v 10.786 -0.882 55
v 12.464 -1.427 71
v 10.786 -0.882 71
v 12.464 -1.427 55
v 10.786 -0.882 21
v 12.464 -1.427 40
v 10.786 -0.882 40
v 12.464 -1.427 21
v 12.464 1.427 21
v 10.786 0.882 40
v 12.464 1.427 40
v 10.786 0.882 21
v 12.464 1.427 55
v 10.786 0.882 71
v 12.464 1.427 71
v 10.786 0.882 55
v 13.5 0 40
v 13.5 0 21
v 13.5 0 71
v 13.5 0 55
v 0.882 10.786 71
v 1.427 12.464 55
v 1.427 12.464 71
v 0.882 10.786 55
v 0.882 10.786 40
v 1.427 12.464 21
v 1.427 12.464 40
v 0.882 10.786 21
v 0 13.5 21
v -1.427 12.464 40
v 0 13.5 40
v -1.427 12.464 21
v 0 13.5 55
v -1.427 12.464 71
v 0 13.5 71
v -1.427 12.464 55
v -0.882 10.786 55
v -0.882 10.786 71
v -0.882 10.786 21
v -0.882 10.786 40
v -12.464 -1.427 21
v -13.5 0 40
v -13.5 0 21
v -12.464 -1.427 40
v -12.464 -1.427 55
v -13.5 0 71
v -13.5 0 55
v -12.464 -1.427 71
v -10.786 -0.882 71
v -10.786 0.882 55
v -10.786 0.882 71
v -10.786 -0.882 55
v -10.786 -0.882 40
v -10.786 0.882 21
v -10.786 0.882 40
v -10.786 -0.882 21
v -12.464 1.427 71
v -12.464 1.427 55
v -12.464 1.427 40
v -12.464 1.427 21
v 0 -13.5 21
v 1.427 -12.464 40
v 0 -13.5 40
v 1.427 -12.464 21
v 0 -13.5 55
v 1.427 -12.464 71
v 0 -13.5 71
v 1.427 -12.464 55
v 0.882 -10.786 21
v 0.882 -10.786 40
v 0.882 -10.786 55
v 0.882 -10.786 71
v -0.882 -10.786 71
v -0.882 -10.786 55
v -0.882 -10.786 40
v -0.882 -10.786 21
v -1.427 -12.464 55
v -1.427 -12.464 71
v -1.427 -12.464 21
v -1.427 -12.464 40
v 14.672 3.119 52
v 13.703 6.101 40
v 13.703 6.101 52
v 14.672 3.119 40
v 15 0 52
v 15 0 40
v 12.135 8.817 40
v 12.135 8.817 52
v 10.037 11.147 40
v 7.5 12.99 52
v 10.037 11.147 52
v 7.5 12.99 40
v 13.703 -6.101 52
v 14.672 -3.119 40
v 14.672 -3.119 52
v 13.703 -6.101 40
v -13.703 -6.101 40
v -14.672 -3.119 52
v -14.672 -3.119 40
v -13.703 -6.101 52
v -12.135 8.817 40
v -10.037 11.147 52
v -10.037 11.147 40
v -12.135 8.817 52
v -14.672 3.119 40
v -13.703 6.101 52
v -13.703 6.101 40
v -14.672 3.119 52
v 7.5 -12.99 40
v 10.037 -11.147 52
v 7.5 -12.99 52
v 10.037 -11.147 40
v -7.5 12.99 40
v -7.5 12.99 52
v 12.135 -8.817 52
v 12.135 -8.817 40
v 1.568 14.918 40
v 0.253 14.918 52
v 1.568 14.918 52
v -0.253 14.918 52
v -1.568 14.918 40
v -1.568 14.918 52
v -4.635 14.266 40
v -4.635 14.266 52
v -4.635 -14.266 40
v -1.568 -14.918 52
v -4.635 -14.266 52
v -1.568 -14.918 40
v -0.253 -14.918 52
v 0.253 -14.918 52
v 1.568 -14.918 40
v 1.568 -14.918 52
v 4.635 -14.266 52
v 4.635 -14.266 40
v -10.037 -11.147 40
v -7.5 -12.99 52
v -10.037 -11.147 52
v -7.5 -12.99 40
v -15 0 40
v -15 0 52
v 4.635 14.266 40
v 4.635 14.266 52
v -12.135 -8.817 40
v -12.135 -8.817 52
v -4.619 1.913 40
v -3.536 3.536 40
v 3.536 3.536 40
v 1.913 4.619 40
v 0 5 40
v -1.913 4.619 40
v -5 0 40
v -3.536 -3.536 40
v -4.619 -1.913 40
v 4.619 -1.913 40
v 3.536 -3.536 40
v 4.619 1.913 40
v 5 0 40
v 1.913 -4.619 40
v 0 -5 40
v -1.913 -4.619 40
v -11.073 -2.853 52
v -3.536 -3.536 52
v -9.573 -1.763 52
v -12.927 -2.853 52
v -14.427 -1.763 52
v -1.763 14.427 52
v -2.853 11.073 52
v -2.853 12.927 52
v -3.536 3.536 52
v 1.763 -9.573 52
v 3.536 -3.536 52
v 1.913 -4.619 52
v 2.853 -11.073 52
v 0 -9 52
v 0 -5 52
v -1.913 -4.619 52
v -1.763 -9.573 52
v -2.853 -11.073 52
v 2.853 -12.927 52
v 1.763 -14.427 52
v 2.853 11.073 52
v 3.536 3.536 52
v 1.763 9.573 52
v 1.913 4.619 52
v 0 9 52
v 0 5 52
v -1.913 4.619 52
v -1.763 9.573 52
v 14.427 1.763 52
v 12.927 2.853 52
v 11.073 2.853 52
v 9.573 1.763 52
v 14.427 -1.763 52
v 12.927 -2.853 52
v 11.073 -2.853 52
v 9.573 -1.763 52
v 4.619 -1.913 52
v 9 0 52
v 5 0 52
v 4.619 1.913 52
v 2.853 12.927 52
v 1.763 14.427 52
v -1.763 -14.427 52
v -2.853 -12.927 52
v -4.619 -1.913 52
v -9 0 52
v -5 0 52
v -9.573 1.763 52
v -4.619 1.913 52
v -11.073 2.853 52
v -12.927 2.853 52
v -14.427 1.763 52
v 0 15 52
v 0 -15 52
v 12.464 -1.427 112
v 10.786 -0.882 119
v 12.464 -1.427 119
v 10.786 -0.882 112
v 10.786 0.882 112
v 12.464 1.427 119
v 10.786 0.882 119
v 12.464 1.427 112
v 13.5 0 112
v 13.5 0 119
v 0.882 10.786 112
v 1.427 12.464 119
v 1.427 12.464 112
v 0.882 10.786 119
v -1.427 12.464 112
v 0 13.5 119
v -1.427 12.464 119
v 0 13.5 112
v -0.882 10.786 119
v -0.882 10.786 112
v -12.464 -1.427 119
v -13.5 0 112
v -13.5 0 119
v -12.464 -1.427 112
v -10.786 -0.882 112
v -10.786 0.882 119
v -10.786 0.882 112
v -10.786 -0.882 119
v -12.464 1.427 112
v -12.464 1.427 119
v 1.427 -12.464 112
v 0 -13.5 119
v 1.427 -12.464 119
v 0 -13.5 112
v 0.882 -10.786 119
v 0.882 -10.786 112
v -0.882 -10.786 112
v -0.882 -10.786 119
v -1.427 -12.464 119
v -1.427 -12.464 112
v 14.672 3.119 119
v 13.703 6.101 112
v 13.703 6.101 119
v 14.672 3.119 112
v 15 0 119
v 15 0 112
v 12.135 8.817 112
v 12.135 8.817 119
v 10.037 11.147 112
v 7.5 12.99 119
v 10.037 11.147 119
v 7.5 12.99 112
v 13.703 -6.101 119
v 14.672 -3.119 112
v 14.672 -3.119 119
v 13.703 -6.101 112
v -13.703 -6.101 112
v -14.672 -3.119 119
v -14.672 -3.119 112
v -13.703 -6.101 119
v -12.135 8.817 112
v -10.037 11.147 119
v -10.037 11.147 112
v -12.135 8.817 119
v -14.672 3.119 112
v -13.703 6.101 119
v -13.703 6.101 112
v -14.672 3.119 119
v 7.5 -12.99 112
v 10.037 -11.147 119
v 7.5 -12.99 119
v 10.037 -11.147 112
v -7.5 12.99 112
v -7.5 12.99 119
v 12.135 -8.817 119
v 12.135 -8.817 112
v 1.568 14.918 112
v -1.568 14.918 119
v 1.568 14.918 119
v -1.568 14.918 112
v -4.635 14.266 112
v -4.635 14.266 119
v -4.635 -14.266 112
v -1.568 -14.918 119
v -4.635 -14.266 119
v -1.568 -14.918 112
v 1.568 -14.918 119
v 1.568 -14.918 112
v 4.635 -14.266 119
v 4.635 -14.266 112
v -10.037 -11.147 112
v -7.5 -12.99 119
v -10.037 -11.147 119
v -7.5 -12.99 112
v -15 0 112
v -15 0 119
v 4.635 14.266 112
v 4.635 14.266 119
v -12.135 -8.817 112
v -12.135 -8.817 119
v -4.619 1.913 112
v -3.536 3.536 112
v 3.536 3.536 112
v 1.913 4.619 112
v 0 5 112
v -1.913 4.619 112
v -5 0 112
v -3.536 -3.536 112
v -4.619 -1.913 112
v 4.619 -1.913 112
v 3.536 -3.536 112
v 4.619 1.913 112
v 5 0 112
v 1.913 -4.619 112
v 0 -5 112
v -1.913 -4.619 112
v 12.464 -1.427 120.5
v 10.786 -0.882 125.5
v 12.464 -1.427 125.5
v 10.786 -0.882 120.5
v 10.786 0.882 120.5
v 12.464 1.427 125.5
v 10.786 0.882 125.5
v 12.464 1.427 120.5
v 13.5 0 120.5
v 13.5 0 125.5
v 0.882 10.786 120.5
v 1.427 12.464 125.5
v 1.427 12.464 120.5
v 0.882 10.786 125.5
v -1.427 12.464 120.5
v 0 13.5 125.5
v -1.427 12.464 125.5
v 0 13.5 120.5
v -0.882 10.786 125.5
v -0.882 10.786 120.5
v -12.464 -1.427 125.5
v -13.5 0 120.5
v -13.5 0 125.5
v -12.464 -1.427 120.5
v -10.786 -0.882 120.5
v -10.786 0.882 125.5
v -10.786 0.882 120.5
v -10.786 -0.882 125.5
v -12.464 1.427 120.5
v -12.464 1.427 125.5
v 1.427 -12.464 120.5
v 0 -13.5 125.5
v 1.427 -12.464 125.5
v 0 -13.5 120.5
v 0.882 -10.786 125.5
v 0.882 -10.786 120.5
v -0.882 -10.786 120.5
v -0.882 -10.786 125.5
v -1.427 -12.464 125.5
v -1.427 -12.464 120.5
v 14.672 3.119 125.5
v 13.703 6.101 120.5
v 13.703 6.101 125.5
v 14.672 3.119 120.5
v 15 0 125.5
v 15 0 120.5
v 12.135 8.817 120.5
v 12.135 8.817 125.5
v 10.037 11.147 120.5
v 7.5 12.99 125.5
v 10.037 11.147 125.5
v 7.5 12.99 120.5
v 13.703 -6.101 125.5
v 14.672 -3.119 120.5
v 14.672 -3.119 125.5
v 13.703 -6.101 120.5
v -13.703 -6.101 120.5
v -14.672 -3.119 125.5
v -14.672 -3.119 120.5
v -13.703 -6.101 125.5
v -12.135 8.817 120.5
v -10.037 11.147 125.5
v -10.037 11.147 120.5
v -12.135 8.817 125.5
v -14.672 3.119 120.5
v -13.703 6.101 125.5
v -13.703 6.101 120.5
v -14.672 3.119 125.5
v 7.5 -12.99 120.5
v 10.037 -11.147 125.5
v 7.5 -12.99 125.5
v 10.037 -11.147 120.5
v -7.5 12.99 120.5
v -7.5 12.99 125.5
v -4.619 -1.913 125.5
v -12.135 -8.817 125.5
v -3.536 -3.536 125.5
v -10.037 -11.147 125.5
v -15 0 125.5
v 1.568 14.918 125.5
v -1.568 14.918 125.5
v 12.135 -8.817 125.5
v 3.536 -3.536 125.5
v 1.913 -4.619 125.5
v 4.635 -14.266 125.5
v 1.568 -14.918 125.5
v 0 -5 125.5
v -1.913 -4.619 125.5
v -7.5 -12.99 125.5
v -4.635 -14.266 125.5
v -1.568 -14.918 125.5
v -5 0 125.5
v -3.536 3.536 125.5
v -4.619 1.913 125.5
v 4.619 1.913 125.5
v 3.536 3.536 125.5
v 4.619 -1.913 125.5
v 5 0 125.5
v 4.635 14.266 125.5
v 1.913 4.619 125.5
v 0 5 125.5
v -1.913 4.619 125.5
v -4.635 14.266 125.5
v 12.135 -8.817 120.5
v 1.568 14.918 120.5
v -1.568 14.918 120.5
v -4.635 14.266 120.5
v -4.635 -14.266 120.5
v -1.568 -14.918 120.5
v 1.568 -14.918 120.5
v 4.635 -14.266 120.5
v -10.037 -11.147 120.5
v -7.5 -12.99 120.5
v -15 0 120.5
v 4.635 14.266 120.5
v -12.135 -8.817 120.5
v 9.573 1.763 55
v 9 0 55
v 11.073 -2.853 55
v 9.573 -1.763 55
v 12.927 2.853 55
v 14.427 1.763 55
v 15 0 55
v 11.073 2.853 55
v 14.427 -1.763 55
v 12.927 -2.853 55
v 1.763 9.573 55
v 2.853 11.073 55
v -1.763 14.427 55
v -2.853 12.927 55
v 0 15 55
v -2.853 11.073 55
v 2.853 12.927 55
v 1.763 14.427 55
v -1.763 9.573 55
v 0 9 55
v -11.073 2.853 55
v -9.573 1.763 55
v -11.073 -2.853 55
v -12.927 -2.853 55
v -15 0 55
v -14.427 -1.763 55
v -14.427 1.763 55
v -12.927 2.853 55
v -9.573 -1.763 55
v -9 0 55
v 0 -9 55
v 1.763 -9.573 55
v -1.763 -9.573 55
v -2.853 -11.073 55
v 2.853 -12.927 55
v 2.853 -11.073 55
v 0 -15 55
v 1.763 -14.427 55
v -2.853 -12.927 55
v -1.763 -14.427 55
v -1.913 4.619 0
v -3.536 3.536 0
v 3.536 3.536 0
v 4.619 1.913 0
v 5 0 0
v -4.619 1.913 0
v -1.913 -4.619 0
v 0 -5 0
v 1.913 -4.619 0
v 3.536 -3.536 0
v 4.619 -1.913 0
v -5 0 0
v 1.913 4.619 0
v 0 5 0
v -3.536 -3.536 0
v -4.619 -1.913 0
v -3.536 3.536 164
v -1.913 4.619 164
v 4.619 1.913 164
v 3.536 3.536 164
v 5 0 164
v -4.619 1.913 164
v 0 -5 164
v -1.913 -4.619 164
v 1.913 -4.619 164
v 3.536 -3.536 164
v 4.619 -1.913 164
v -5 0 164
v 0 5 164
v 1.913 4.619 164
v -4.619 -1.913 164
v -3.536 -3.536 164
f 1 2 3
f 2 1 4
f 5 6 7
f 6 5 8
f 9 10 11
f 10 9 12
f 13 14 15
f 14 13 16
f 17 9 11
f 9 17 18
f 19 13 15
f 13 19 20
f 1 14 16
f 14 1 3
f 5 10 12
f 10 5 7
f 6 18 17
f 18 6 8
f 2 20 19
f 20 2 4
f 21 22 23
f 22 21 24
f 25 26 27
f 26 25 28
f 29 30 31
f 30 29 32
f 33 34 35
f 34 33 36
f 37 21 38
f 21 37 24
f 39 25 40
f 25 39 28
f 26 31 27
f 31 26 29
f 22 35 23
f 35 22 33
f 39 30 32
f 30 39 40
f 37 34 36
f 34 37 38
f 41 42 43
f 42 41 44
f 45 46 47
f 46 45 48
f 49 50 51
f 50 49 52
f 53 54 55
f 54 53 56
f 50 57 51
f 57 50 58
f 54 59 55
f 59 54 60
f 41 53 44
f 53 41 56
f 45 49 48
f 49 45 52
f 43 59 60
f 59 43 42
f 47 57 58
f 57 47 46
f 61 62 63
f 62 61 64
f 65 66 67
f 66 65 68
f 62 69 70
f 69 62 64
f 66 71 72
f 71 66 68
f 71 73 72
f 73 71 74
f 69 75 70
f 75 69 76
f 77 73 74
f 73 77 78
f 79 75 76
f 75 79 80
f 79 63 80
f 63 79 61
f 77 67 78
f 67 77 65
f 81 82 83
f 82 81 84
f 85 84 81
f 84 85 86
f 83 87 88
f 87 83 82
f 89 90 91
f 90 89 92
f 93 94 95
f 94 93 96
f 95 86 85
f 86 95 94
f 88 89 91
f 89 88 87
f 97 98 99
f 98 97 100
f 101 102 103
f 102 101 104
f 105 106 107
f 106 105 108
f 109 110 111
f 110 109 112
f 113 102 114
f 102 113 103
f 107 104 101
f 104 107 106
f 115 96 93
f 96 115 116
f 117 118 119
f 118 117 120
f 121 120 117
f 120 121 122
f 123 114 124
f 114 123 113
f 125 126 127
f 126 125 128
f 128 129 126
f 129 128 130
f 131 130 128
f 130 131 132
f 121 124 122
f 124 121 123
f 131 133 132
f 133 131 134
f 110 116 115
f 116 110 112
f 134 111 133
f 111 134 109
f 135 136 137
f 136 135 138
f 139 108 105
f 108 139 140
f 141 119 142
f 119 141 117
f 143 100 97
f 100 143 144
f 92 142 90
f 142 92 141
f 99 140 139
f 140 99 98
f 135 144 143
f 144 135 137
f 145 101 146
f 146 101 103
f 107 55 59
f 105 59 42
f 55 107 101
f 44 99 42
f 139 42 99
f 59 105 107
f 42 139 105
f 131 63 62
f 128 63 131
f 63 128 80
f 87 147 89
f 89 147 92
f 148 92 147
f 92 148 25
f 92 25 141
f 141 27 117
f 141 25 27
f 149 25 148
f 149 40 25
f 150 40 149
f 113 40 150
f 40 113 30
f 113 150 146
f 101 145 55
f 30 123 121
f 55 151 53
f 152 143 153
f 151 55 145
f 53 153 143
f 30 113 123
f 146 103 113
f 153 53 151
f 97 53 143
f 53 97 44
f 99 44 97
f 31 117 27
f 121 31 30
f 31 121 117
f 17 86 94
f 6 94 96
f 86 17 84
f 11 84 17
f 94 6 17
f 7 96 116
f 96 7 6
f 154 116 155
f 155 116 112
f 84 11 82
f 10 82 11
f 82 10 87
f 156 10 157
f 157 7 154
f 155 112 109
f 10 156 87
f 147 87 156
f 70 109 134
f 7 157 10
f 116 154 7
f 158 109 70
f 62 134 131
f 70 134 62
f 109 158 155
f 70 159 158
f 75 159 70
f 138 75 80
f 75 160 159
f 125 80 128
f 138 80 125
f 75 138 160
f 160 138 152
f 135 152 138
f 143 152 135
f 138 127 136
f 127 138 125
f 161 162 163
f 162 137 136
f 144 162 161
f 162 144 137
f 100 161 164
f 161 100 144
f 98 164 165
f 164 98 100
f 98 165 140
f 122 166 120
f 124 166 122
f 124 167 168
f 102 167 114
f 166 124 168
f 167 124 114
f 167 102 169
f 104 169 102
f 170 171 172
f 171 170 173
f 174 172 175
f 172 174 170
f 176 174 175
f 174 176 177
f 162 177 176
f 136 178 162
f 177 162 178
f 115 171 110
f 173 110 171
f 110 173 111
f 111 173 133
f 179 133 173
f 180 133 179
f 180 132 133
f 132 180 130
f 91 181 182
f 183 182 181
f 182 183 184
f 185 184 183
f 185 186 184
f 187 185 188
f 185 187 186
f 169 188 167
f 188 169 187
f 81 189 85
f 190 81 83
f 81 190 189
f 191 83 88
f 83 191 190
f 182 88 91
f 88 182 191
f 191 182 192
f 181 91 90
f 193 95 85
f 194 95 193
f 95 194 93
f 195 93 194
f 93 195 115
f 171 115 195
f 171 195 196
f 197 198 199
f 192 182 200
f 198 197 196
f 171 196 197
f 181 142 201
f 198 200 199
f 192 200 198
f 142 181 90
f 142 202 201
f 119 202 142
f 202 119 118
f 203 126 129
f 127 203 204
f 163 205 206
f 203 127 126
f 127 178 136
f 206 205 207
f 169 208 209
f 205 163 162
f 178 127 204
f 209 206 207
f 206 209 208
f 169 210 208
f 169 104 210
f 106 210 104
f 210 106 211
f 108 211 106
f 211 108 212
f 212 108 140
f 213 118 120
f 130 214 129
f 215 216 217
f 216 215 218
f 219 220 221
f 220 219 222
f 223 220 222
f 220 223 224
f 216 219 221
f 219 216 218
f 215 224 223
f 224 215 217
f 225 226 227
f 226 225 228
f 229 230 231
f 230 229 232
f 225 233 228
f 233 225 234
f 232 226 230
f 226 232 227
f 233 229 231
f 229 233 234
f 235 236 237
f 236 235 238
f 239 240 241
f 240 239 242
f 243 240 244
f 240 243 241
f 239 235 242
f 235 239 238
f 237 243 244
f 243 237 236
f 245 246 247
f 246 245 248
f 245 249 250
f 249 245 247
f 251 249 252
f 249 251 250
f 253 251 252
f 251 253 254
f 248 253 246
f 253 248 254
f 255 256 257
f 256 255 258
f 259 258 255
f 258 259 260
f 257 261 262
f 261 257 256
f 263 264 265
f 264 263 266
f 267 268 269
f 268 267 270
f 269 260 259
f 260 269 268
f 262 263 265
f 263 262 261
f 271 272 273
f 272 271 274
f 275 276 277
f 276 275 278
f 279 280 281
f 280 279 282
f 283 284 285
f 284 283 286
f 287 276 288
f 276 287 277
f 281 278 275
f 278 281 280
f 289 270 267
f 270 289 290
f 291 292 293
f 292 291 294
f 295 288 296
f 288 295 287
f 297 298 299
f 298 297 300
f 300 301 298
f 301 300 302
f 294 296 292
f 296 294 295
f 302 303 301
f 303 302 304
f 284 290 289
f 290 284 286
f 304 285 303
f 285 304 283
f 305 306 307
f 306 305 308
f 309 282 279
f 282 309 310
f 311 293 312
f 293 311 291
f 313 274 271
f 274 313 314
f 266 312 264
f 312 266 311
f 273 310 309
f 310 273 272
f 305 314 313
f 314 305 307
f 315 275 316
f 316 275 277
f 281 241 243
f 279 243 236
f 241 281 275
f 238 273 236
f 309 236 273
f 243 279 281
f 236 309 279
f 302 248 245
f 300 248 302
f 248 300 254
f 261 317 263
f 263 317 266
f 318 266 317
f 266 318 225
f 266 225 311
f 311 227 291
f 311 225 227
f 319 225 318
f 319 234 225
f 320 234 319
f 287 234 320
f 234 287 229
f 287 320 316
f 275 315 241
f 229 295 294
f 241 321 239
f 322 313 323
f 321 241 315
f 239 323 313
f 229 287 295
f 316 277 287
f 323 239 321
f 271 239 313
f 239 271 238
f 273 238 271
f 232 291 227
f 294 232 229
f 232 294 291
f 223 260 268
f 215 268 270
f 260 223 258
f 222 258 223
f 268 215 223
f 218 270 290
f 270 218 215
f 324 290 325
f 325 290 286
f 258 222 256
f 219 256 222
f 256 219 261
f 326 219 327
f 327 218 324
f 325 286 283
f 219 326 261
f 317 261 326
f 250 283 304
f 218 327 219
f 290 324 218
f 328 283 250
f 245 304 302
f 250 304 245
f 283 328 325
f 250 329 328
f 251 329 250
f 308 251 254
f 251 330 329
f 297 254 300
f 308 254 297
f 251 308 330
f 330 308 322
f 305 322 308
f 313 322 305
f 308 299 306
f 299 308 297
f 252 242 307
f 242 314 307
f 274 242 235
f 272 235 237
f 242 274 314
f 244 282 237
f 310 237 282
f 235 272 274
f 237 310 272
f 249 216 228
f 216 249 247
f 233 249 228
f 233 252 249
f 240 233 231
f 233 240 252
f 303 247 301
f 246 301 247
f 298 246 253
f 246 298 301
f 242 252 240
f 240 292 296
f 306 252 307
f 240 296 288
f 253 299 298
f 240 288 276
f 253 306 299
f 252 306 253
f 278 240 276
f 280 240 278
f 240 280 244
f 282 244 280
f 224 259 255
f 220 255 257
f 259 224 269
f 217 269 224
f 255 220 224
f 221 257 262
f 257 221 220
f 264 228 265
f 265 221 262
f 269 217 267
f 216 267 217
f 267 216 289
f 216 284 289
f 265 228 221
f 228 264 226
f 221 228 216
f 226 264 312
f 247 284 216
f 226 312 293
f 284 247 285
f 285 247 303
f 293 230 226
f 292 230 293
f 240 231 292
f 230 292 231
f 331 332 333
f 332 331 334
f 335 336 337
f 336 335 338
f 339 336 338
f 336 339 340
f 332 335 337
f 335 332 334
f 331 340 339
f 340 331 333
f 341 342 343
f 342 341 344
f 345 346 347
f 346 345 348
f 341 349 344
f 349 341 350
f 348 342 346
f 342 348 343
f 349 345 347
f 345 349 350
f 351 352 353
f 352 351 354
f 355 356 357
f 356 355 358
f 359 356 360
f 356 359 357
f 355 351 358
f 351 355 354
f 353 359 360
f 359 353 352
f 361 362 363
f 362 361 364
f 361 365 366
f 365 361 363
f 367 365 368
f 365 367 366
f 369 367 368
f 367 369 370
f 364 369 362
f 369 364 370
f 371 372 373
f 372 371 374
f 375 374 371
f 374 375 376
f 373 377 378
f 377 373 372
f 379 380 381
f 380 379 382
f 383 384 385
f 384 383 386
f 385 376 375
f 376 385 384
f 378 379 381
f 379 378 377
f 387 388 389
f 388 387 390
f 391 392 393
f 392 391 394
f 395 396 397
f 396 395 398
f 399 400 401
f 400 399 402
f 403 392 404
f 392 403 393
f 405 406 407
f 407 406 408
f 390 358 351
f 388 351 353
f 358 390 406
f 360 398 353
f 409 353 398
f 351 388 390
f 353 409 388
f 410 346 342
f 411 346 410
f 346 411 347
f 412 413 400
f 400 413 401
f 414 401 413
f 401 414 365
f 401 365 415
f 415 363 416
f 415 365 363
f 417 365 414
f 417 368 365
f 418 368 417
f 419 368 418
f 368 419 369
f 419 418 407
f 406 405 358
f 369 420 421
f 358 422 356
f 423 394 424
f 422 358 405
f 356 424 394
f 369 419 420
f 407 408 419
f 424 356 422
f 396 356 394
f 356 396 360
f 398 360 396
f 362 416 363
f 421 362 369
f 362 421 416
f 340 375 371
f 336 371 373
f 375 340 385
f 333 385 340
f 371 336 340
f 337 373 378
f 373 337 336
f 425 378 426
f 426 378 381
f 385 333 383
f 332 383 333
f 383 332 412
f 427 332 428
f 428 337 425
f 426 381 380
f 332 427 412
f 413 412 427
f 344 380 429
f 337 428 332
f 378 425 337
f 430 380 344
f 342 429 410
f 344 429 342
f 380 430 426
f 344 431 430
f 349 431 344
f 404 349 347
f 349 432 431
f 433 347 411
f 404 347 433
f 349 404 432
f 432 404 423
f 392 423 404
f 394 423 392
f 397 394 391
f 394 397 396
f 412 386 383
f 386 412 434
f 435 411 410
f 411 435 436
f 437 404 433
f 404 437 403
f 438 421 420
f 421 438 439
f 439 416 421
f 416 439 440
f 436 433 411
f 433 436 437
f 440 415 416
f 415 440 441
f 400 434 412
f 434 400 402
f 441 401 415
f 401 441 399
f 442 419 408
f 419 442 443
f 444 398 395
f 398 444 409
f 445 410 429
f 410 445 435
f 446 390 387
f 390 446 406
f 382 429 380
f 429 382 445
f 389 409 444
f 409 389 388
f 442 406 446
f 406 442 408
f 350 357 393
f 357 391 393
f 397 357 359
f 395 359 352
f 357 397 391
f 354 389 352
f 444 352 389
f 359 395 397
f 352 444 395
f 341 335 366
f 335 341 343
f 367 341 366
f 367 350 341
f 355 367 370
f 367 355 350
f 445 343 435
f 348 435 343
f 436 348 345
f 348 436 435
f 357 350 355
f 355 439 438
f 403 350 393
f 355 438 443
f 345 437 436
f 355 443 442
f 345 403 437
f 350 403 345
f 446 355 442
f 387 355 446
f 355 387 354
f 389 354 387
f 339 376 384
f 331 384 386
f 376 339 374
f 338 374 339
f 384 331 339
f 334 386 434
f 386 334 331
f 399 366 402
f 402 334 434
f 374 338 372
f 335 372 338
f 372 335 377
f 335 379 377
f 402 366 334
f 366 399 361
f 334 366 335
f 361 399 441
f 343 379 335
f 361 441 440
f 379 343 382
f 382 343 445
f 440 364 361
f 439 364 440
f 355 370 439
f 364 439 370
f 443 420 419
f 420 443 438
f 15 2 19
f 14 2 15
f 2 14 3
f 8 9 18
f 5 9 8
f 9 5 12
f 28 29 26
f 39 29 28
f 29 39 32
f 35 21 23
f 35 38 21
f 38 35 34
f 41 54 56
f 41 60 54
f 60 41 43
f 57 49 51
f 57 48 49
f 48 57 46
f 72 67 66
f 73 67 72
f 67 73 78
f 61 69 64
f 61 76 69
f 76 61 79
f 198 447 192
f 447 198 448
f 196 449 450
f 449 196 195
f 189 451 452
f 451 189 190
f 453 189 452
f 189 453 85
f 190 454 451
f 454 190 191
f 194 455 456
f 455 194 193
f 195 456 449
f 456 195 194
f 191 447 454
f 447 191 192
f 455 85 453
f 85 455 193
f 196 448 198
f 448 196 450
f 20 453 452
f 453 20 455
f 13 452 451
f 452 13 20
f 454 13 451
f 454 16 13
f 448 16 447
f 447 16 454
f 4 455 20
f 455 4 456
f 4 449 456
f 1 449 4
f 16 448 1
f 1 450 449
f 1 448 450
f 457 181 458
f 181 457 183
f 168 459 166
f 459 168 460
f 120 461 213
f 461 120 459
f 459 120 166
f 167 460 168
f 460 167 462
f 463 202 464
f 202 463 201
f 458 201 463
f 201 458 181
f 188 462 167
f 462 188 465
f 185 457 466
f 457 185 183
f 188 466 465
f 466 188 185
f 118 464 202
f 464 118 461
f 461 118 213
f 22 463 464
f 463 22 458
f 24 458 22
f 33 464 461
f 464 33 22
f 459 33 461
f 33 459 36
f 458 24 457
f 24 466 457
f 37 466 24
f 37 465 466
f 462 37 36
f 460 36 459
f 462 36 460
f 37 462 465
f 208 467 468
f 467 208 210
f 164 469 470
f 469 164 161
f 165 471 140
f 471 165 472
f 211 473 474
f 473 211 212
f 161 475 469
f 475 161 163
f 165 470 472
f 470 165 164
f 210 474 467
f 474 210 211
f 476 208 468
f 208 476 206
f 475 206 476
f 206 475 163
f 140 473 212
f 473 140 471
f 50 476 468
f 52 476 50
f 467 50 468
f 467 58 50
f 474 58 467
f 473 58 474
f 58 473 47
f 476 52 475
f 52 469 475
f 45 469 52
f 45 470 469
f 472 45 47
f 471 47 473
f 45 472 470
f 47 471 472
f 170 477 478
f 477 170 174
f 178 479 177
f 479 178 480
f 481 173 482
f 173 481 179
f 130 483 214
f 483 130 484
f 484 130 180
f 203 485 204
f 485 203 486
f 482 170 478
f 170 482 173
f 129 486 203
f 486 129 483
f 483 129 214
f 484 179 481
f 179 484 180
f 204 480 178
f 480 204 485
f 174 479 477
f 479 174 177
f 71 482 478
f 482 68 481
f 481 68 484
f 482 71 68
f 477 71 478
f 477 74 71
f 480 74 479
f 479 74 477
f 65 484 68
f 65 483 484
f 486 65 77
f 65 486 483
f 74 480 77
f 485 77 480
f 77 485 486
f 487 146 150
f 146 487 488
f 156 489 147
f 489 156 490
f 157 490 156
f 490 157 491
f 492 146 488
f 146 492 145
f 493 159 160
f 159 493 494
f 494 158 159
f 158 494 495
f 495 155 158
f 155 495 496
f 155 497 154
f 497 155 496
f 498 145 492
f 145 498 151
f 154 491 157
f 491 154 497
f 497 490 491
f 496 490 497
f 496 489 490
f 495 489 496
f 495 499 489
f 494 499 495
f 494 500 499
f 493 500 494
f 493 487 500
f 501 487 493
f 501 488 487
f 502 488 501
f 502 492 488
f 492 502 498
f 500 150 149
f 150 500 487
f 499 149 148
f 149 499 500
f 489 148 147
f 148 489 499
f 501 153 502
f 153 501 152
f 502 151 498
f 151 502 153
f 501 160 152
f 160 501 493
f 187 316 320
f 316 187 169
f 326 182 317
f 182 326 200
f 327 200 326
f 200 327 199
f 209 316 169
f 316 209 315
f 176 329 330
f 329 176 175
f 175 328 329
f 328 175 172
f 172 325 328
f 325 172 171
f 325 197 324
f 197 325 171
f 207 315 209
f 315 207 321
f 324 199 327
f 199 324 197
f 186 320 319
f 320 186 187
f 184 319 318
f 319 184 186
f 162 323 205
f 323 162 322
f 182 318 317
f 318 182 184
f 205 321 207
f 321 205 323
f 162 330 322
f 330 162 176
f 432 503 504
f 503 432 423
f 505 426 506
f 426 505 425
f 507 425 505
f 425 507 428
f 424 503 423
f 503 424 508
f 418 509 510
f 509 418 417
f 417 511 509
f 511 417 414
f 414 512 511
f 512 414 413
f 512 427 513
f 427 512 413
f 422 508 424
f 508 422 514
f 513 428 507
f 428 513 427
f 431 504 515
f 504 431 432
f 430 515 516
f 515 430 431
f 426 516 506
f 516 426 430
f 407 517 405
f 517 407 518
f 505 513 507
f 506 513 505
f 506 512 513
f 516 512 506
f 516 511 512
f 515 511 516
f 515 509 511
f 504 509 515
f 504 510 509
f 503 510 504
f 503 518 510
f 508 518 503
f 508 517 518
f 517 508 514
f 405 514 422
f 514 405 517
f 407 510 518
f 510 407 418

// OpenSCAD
// Parameters
shaft_diameter = 10; // Diameter of shafts
shaft_length = 40; // Length of input/output shafts
central_shaft_length = 60; // Length of central shaft
flange_diameter = 30; // Diameter of flange plates
flange_thickness = 5; // Thickness of flange plates
spacer_ring_diameter = 30; // Diameter of spacer rings
spacer_ring_thickness = 2; // Thickness of spacer rings
bolt_diameter = 3; // Diameter of bolts
bolt_length = 50; // Length of bolts
nut_diameter = 6; // Diameter of nuts
nut_thickness = 3; // Thickness of nuts
bolt_hole_radius = 12; // Radius of bolt hole circle

// Helper function to create a bolt hole pattern
module bolt_holes(num_holes, radius) {
    for (i = [0:num_holes-1]) {
        rotate([0, 0, i * 360 / num_holes])
        translate([radius, 0, 0])
        cylinder(r=bolt_diameter/2, h=flange_thickness + spacer_ring_thickness, center=true);
    }
}

// Input Shaft
translate([0, 0, shaft_length/2])
cylinder(r=shaft_diameter/2, h=shaft_length, center=true);

// Flange Plate 1
translate([0, 0, shaft_length + flange_thickness/2])
difference() {
    cylinder(r=flange_diameter/2, h=flange_thickness, center=true);
    bolt_holes(4, bolt_hole_radius);
}

// Spacer Ring 1
translate([0, 0, shaft_length + flange_thickness + spacer_ring_thickness/2])
difference() {
    cylinder(r=spacer_ring_diameter/2, h=spacer_ring_thickness, center=true);
    bolt_holes(4, bolt_hole_radius);
}

// Flange Plate 2
translate([0, 0, shaft_length + flange_thickness + spacer_ring_thickness + flange_thickness/2])
difference() {
    cylinder(r=flange_diameter/2, h=flange_thickness, center=true);
    bolt_holes(4, bolt_hole_radius);
}

// Central Shaft
translate([0, 0, shaft_length + flange_thickness*2 + spacer_ring_thickness + central_shaft_length/2])
cylinder(r=shaft_diameter/2, h=central_shaft_length, center=true);

// Flange Plate 3
translate([0, 0, shaft_length + flange_thickness*2 + spacer_ring_thickness + central_shaft_length + flange_thickness/2])
difference() {
    cylinder(r=flange_diameter/2, h=flange_thickness, center=true);
    bolt_holes(4, bolt_hole_radius);
}

// Spacer Ring 2
translate([0, 0, shaft_length + flange_thickness*2 + spacer_ring_thickness + central_shaft_length + flange_thickness + spacer_ring_thickness/2])
difference() {
    cylinder(r=spacer_ring_diameter/2, h=spacer_ring_thickness, center=true);
    bolt_holes(4, bolt_hole_radius);
}

// Flange Plate 4
translate([0, 0, shaft_length + flange_thickness*2 + spacer_ring_thickness + central_shaft_length + flange_thickness*2 + spacer_ring_thickness/2])
difference() {
    cylinder(r=flange_diameter/2, h=flange_thickness, center=true);
    bolt_holes(4, bolt_hole_radius);
}

// Output Shaft
translate([0, 0, shaft_length + flange_thickness*2 + spacer_ring_thickness + central_shaft_length + flange_thickness*2 + spacer_ring_thickness + shaft_length/2])
cylinder(r=shaft_diameter/2, h=shaft_length, center=true);

// Bolts
for (i = [0:3]) {
    rotate([0, 0, i * 360 / 4])
    translate([bolt_hole_radius, 0, shaft_length + flange_thickness + spacer_ring_thickness/2])
    cylinder(r=bolt_diameter/2, h=bolt_length, center=true);
}

// Nuts
for (i = [0:3]) {
    rotate([0, 0, i * 360 / 4])
    translate([bolt_hole_radius, 0, shaft_length + flange_thickness + spacer_ring_thickness + flange_thickness + nut_thickness/2])
    cylinder(r=nut_diameter/2, h=nut_thickness, center=true);
}
